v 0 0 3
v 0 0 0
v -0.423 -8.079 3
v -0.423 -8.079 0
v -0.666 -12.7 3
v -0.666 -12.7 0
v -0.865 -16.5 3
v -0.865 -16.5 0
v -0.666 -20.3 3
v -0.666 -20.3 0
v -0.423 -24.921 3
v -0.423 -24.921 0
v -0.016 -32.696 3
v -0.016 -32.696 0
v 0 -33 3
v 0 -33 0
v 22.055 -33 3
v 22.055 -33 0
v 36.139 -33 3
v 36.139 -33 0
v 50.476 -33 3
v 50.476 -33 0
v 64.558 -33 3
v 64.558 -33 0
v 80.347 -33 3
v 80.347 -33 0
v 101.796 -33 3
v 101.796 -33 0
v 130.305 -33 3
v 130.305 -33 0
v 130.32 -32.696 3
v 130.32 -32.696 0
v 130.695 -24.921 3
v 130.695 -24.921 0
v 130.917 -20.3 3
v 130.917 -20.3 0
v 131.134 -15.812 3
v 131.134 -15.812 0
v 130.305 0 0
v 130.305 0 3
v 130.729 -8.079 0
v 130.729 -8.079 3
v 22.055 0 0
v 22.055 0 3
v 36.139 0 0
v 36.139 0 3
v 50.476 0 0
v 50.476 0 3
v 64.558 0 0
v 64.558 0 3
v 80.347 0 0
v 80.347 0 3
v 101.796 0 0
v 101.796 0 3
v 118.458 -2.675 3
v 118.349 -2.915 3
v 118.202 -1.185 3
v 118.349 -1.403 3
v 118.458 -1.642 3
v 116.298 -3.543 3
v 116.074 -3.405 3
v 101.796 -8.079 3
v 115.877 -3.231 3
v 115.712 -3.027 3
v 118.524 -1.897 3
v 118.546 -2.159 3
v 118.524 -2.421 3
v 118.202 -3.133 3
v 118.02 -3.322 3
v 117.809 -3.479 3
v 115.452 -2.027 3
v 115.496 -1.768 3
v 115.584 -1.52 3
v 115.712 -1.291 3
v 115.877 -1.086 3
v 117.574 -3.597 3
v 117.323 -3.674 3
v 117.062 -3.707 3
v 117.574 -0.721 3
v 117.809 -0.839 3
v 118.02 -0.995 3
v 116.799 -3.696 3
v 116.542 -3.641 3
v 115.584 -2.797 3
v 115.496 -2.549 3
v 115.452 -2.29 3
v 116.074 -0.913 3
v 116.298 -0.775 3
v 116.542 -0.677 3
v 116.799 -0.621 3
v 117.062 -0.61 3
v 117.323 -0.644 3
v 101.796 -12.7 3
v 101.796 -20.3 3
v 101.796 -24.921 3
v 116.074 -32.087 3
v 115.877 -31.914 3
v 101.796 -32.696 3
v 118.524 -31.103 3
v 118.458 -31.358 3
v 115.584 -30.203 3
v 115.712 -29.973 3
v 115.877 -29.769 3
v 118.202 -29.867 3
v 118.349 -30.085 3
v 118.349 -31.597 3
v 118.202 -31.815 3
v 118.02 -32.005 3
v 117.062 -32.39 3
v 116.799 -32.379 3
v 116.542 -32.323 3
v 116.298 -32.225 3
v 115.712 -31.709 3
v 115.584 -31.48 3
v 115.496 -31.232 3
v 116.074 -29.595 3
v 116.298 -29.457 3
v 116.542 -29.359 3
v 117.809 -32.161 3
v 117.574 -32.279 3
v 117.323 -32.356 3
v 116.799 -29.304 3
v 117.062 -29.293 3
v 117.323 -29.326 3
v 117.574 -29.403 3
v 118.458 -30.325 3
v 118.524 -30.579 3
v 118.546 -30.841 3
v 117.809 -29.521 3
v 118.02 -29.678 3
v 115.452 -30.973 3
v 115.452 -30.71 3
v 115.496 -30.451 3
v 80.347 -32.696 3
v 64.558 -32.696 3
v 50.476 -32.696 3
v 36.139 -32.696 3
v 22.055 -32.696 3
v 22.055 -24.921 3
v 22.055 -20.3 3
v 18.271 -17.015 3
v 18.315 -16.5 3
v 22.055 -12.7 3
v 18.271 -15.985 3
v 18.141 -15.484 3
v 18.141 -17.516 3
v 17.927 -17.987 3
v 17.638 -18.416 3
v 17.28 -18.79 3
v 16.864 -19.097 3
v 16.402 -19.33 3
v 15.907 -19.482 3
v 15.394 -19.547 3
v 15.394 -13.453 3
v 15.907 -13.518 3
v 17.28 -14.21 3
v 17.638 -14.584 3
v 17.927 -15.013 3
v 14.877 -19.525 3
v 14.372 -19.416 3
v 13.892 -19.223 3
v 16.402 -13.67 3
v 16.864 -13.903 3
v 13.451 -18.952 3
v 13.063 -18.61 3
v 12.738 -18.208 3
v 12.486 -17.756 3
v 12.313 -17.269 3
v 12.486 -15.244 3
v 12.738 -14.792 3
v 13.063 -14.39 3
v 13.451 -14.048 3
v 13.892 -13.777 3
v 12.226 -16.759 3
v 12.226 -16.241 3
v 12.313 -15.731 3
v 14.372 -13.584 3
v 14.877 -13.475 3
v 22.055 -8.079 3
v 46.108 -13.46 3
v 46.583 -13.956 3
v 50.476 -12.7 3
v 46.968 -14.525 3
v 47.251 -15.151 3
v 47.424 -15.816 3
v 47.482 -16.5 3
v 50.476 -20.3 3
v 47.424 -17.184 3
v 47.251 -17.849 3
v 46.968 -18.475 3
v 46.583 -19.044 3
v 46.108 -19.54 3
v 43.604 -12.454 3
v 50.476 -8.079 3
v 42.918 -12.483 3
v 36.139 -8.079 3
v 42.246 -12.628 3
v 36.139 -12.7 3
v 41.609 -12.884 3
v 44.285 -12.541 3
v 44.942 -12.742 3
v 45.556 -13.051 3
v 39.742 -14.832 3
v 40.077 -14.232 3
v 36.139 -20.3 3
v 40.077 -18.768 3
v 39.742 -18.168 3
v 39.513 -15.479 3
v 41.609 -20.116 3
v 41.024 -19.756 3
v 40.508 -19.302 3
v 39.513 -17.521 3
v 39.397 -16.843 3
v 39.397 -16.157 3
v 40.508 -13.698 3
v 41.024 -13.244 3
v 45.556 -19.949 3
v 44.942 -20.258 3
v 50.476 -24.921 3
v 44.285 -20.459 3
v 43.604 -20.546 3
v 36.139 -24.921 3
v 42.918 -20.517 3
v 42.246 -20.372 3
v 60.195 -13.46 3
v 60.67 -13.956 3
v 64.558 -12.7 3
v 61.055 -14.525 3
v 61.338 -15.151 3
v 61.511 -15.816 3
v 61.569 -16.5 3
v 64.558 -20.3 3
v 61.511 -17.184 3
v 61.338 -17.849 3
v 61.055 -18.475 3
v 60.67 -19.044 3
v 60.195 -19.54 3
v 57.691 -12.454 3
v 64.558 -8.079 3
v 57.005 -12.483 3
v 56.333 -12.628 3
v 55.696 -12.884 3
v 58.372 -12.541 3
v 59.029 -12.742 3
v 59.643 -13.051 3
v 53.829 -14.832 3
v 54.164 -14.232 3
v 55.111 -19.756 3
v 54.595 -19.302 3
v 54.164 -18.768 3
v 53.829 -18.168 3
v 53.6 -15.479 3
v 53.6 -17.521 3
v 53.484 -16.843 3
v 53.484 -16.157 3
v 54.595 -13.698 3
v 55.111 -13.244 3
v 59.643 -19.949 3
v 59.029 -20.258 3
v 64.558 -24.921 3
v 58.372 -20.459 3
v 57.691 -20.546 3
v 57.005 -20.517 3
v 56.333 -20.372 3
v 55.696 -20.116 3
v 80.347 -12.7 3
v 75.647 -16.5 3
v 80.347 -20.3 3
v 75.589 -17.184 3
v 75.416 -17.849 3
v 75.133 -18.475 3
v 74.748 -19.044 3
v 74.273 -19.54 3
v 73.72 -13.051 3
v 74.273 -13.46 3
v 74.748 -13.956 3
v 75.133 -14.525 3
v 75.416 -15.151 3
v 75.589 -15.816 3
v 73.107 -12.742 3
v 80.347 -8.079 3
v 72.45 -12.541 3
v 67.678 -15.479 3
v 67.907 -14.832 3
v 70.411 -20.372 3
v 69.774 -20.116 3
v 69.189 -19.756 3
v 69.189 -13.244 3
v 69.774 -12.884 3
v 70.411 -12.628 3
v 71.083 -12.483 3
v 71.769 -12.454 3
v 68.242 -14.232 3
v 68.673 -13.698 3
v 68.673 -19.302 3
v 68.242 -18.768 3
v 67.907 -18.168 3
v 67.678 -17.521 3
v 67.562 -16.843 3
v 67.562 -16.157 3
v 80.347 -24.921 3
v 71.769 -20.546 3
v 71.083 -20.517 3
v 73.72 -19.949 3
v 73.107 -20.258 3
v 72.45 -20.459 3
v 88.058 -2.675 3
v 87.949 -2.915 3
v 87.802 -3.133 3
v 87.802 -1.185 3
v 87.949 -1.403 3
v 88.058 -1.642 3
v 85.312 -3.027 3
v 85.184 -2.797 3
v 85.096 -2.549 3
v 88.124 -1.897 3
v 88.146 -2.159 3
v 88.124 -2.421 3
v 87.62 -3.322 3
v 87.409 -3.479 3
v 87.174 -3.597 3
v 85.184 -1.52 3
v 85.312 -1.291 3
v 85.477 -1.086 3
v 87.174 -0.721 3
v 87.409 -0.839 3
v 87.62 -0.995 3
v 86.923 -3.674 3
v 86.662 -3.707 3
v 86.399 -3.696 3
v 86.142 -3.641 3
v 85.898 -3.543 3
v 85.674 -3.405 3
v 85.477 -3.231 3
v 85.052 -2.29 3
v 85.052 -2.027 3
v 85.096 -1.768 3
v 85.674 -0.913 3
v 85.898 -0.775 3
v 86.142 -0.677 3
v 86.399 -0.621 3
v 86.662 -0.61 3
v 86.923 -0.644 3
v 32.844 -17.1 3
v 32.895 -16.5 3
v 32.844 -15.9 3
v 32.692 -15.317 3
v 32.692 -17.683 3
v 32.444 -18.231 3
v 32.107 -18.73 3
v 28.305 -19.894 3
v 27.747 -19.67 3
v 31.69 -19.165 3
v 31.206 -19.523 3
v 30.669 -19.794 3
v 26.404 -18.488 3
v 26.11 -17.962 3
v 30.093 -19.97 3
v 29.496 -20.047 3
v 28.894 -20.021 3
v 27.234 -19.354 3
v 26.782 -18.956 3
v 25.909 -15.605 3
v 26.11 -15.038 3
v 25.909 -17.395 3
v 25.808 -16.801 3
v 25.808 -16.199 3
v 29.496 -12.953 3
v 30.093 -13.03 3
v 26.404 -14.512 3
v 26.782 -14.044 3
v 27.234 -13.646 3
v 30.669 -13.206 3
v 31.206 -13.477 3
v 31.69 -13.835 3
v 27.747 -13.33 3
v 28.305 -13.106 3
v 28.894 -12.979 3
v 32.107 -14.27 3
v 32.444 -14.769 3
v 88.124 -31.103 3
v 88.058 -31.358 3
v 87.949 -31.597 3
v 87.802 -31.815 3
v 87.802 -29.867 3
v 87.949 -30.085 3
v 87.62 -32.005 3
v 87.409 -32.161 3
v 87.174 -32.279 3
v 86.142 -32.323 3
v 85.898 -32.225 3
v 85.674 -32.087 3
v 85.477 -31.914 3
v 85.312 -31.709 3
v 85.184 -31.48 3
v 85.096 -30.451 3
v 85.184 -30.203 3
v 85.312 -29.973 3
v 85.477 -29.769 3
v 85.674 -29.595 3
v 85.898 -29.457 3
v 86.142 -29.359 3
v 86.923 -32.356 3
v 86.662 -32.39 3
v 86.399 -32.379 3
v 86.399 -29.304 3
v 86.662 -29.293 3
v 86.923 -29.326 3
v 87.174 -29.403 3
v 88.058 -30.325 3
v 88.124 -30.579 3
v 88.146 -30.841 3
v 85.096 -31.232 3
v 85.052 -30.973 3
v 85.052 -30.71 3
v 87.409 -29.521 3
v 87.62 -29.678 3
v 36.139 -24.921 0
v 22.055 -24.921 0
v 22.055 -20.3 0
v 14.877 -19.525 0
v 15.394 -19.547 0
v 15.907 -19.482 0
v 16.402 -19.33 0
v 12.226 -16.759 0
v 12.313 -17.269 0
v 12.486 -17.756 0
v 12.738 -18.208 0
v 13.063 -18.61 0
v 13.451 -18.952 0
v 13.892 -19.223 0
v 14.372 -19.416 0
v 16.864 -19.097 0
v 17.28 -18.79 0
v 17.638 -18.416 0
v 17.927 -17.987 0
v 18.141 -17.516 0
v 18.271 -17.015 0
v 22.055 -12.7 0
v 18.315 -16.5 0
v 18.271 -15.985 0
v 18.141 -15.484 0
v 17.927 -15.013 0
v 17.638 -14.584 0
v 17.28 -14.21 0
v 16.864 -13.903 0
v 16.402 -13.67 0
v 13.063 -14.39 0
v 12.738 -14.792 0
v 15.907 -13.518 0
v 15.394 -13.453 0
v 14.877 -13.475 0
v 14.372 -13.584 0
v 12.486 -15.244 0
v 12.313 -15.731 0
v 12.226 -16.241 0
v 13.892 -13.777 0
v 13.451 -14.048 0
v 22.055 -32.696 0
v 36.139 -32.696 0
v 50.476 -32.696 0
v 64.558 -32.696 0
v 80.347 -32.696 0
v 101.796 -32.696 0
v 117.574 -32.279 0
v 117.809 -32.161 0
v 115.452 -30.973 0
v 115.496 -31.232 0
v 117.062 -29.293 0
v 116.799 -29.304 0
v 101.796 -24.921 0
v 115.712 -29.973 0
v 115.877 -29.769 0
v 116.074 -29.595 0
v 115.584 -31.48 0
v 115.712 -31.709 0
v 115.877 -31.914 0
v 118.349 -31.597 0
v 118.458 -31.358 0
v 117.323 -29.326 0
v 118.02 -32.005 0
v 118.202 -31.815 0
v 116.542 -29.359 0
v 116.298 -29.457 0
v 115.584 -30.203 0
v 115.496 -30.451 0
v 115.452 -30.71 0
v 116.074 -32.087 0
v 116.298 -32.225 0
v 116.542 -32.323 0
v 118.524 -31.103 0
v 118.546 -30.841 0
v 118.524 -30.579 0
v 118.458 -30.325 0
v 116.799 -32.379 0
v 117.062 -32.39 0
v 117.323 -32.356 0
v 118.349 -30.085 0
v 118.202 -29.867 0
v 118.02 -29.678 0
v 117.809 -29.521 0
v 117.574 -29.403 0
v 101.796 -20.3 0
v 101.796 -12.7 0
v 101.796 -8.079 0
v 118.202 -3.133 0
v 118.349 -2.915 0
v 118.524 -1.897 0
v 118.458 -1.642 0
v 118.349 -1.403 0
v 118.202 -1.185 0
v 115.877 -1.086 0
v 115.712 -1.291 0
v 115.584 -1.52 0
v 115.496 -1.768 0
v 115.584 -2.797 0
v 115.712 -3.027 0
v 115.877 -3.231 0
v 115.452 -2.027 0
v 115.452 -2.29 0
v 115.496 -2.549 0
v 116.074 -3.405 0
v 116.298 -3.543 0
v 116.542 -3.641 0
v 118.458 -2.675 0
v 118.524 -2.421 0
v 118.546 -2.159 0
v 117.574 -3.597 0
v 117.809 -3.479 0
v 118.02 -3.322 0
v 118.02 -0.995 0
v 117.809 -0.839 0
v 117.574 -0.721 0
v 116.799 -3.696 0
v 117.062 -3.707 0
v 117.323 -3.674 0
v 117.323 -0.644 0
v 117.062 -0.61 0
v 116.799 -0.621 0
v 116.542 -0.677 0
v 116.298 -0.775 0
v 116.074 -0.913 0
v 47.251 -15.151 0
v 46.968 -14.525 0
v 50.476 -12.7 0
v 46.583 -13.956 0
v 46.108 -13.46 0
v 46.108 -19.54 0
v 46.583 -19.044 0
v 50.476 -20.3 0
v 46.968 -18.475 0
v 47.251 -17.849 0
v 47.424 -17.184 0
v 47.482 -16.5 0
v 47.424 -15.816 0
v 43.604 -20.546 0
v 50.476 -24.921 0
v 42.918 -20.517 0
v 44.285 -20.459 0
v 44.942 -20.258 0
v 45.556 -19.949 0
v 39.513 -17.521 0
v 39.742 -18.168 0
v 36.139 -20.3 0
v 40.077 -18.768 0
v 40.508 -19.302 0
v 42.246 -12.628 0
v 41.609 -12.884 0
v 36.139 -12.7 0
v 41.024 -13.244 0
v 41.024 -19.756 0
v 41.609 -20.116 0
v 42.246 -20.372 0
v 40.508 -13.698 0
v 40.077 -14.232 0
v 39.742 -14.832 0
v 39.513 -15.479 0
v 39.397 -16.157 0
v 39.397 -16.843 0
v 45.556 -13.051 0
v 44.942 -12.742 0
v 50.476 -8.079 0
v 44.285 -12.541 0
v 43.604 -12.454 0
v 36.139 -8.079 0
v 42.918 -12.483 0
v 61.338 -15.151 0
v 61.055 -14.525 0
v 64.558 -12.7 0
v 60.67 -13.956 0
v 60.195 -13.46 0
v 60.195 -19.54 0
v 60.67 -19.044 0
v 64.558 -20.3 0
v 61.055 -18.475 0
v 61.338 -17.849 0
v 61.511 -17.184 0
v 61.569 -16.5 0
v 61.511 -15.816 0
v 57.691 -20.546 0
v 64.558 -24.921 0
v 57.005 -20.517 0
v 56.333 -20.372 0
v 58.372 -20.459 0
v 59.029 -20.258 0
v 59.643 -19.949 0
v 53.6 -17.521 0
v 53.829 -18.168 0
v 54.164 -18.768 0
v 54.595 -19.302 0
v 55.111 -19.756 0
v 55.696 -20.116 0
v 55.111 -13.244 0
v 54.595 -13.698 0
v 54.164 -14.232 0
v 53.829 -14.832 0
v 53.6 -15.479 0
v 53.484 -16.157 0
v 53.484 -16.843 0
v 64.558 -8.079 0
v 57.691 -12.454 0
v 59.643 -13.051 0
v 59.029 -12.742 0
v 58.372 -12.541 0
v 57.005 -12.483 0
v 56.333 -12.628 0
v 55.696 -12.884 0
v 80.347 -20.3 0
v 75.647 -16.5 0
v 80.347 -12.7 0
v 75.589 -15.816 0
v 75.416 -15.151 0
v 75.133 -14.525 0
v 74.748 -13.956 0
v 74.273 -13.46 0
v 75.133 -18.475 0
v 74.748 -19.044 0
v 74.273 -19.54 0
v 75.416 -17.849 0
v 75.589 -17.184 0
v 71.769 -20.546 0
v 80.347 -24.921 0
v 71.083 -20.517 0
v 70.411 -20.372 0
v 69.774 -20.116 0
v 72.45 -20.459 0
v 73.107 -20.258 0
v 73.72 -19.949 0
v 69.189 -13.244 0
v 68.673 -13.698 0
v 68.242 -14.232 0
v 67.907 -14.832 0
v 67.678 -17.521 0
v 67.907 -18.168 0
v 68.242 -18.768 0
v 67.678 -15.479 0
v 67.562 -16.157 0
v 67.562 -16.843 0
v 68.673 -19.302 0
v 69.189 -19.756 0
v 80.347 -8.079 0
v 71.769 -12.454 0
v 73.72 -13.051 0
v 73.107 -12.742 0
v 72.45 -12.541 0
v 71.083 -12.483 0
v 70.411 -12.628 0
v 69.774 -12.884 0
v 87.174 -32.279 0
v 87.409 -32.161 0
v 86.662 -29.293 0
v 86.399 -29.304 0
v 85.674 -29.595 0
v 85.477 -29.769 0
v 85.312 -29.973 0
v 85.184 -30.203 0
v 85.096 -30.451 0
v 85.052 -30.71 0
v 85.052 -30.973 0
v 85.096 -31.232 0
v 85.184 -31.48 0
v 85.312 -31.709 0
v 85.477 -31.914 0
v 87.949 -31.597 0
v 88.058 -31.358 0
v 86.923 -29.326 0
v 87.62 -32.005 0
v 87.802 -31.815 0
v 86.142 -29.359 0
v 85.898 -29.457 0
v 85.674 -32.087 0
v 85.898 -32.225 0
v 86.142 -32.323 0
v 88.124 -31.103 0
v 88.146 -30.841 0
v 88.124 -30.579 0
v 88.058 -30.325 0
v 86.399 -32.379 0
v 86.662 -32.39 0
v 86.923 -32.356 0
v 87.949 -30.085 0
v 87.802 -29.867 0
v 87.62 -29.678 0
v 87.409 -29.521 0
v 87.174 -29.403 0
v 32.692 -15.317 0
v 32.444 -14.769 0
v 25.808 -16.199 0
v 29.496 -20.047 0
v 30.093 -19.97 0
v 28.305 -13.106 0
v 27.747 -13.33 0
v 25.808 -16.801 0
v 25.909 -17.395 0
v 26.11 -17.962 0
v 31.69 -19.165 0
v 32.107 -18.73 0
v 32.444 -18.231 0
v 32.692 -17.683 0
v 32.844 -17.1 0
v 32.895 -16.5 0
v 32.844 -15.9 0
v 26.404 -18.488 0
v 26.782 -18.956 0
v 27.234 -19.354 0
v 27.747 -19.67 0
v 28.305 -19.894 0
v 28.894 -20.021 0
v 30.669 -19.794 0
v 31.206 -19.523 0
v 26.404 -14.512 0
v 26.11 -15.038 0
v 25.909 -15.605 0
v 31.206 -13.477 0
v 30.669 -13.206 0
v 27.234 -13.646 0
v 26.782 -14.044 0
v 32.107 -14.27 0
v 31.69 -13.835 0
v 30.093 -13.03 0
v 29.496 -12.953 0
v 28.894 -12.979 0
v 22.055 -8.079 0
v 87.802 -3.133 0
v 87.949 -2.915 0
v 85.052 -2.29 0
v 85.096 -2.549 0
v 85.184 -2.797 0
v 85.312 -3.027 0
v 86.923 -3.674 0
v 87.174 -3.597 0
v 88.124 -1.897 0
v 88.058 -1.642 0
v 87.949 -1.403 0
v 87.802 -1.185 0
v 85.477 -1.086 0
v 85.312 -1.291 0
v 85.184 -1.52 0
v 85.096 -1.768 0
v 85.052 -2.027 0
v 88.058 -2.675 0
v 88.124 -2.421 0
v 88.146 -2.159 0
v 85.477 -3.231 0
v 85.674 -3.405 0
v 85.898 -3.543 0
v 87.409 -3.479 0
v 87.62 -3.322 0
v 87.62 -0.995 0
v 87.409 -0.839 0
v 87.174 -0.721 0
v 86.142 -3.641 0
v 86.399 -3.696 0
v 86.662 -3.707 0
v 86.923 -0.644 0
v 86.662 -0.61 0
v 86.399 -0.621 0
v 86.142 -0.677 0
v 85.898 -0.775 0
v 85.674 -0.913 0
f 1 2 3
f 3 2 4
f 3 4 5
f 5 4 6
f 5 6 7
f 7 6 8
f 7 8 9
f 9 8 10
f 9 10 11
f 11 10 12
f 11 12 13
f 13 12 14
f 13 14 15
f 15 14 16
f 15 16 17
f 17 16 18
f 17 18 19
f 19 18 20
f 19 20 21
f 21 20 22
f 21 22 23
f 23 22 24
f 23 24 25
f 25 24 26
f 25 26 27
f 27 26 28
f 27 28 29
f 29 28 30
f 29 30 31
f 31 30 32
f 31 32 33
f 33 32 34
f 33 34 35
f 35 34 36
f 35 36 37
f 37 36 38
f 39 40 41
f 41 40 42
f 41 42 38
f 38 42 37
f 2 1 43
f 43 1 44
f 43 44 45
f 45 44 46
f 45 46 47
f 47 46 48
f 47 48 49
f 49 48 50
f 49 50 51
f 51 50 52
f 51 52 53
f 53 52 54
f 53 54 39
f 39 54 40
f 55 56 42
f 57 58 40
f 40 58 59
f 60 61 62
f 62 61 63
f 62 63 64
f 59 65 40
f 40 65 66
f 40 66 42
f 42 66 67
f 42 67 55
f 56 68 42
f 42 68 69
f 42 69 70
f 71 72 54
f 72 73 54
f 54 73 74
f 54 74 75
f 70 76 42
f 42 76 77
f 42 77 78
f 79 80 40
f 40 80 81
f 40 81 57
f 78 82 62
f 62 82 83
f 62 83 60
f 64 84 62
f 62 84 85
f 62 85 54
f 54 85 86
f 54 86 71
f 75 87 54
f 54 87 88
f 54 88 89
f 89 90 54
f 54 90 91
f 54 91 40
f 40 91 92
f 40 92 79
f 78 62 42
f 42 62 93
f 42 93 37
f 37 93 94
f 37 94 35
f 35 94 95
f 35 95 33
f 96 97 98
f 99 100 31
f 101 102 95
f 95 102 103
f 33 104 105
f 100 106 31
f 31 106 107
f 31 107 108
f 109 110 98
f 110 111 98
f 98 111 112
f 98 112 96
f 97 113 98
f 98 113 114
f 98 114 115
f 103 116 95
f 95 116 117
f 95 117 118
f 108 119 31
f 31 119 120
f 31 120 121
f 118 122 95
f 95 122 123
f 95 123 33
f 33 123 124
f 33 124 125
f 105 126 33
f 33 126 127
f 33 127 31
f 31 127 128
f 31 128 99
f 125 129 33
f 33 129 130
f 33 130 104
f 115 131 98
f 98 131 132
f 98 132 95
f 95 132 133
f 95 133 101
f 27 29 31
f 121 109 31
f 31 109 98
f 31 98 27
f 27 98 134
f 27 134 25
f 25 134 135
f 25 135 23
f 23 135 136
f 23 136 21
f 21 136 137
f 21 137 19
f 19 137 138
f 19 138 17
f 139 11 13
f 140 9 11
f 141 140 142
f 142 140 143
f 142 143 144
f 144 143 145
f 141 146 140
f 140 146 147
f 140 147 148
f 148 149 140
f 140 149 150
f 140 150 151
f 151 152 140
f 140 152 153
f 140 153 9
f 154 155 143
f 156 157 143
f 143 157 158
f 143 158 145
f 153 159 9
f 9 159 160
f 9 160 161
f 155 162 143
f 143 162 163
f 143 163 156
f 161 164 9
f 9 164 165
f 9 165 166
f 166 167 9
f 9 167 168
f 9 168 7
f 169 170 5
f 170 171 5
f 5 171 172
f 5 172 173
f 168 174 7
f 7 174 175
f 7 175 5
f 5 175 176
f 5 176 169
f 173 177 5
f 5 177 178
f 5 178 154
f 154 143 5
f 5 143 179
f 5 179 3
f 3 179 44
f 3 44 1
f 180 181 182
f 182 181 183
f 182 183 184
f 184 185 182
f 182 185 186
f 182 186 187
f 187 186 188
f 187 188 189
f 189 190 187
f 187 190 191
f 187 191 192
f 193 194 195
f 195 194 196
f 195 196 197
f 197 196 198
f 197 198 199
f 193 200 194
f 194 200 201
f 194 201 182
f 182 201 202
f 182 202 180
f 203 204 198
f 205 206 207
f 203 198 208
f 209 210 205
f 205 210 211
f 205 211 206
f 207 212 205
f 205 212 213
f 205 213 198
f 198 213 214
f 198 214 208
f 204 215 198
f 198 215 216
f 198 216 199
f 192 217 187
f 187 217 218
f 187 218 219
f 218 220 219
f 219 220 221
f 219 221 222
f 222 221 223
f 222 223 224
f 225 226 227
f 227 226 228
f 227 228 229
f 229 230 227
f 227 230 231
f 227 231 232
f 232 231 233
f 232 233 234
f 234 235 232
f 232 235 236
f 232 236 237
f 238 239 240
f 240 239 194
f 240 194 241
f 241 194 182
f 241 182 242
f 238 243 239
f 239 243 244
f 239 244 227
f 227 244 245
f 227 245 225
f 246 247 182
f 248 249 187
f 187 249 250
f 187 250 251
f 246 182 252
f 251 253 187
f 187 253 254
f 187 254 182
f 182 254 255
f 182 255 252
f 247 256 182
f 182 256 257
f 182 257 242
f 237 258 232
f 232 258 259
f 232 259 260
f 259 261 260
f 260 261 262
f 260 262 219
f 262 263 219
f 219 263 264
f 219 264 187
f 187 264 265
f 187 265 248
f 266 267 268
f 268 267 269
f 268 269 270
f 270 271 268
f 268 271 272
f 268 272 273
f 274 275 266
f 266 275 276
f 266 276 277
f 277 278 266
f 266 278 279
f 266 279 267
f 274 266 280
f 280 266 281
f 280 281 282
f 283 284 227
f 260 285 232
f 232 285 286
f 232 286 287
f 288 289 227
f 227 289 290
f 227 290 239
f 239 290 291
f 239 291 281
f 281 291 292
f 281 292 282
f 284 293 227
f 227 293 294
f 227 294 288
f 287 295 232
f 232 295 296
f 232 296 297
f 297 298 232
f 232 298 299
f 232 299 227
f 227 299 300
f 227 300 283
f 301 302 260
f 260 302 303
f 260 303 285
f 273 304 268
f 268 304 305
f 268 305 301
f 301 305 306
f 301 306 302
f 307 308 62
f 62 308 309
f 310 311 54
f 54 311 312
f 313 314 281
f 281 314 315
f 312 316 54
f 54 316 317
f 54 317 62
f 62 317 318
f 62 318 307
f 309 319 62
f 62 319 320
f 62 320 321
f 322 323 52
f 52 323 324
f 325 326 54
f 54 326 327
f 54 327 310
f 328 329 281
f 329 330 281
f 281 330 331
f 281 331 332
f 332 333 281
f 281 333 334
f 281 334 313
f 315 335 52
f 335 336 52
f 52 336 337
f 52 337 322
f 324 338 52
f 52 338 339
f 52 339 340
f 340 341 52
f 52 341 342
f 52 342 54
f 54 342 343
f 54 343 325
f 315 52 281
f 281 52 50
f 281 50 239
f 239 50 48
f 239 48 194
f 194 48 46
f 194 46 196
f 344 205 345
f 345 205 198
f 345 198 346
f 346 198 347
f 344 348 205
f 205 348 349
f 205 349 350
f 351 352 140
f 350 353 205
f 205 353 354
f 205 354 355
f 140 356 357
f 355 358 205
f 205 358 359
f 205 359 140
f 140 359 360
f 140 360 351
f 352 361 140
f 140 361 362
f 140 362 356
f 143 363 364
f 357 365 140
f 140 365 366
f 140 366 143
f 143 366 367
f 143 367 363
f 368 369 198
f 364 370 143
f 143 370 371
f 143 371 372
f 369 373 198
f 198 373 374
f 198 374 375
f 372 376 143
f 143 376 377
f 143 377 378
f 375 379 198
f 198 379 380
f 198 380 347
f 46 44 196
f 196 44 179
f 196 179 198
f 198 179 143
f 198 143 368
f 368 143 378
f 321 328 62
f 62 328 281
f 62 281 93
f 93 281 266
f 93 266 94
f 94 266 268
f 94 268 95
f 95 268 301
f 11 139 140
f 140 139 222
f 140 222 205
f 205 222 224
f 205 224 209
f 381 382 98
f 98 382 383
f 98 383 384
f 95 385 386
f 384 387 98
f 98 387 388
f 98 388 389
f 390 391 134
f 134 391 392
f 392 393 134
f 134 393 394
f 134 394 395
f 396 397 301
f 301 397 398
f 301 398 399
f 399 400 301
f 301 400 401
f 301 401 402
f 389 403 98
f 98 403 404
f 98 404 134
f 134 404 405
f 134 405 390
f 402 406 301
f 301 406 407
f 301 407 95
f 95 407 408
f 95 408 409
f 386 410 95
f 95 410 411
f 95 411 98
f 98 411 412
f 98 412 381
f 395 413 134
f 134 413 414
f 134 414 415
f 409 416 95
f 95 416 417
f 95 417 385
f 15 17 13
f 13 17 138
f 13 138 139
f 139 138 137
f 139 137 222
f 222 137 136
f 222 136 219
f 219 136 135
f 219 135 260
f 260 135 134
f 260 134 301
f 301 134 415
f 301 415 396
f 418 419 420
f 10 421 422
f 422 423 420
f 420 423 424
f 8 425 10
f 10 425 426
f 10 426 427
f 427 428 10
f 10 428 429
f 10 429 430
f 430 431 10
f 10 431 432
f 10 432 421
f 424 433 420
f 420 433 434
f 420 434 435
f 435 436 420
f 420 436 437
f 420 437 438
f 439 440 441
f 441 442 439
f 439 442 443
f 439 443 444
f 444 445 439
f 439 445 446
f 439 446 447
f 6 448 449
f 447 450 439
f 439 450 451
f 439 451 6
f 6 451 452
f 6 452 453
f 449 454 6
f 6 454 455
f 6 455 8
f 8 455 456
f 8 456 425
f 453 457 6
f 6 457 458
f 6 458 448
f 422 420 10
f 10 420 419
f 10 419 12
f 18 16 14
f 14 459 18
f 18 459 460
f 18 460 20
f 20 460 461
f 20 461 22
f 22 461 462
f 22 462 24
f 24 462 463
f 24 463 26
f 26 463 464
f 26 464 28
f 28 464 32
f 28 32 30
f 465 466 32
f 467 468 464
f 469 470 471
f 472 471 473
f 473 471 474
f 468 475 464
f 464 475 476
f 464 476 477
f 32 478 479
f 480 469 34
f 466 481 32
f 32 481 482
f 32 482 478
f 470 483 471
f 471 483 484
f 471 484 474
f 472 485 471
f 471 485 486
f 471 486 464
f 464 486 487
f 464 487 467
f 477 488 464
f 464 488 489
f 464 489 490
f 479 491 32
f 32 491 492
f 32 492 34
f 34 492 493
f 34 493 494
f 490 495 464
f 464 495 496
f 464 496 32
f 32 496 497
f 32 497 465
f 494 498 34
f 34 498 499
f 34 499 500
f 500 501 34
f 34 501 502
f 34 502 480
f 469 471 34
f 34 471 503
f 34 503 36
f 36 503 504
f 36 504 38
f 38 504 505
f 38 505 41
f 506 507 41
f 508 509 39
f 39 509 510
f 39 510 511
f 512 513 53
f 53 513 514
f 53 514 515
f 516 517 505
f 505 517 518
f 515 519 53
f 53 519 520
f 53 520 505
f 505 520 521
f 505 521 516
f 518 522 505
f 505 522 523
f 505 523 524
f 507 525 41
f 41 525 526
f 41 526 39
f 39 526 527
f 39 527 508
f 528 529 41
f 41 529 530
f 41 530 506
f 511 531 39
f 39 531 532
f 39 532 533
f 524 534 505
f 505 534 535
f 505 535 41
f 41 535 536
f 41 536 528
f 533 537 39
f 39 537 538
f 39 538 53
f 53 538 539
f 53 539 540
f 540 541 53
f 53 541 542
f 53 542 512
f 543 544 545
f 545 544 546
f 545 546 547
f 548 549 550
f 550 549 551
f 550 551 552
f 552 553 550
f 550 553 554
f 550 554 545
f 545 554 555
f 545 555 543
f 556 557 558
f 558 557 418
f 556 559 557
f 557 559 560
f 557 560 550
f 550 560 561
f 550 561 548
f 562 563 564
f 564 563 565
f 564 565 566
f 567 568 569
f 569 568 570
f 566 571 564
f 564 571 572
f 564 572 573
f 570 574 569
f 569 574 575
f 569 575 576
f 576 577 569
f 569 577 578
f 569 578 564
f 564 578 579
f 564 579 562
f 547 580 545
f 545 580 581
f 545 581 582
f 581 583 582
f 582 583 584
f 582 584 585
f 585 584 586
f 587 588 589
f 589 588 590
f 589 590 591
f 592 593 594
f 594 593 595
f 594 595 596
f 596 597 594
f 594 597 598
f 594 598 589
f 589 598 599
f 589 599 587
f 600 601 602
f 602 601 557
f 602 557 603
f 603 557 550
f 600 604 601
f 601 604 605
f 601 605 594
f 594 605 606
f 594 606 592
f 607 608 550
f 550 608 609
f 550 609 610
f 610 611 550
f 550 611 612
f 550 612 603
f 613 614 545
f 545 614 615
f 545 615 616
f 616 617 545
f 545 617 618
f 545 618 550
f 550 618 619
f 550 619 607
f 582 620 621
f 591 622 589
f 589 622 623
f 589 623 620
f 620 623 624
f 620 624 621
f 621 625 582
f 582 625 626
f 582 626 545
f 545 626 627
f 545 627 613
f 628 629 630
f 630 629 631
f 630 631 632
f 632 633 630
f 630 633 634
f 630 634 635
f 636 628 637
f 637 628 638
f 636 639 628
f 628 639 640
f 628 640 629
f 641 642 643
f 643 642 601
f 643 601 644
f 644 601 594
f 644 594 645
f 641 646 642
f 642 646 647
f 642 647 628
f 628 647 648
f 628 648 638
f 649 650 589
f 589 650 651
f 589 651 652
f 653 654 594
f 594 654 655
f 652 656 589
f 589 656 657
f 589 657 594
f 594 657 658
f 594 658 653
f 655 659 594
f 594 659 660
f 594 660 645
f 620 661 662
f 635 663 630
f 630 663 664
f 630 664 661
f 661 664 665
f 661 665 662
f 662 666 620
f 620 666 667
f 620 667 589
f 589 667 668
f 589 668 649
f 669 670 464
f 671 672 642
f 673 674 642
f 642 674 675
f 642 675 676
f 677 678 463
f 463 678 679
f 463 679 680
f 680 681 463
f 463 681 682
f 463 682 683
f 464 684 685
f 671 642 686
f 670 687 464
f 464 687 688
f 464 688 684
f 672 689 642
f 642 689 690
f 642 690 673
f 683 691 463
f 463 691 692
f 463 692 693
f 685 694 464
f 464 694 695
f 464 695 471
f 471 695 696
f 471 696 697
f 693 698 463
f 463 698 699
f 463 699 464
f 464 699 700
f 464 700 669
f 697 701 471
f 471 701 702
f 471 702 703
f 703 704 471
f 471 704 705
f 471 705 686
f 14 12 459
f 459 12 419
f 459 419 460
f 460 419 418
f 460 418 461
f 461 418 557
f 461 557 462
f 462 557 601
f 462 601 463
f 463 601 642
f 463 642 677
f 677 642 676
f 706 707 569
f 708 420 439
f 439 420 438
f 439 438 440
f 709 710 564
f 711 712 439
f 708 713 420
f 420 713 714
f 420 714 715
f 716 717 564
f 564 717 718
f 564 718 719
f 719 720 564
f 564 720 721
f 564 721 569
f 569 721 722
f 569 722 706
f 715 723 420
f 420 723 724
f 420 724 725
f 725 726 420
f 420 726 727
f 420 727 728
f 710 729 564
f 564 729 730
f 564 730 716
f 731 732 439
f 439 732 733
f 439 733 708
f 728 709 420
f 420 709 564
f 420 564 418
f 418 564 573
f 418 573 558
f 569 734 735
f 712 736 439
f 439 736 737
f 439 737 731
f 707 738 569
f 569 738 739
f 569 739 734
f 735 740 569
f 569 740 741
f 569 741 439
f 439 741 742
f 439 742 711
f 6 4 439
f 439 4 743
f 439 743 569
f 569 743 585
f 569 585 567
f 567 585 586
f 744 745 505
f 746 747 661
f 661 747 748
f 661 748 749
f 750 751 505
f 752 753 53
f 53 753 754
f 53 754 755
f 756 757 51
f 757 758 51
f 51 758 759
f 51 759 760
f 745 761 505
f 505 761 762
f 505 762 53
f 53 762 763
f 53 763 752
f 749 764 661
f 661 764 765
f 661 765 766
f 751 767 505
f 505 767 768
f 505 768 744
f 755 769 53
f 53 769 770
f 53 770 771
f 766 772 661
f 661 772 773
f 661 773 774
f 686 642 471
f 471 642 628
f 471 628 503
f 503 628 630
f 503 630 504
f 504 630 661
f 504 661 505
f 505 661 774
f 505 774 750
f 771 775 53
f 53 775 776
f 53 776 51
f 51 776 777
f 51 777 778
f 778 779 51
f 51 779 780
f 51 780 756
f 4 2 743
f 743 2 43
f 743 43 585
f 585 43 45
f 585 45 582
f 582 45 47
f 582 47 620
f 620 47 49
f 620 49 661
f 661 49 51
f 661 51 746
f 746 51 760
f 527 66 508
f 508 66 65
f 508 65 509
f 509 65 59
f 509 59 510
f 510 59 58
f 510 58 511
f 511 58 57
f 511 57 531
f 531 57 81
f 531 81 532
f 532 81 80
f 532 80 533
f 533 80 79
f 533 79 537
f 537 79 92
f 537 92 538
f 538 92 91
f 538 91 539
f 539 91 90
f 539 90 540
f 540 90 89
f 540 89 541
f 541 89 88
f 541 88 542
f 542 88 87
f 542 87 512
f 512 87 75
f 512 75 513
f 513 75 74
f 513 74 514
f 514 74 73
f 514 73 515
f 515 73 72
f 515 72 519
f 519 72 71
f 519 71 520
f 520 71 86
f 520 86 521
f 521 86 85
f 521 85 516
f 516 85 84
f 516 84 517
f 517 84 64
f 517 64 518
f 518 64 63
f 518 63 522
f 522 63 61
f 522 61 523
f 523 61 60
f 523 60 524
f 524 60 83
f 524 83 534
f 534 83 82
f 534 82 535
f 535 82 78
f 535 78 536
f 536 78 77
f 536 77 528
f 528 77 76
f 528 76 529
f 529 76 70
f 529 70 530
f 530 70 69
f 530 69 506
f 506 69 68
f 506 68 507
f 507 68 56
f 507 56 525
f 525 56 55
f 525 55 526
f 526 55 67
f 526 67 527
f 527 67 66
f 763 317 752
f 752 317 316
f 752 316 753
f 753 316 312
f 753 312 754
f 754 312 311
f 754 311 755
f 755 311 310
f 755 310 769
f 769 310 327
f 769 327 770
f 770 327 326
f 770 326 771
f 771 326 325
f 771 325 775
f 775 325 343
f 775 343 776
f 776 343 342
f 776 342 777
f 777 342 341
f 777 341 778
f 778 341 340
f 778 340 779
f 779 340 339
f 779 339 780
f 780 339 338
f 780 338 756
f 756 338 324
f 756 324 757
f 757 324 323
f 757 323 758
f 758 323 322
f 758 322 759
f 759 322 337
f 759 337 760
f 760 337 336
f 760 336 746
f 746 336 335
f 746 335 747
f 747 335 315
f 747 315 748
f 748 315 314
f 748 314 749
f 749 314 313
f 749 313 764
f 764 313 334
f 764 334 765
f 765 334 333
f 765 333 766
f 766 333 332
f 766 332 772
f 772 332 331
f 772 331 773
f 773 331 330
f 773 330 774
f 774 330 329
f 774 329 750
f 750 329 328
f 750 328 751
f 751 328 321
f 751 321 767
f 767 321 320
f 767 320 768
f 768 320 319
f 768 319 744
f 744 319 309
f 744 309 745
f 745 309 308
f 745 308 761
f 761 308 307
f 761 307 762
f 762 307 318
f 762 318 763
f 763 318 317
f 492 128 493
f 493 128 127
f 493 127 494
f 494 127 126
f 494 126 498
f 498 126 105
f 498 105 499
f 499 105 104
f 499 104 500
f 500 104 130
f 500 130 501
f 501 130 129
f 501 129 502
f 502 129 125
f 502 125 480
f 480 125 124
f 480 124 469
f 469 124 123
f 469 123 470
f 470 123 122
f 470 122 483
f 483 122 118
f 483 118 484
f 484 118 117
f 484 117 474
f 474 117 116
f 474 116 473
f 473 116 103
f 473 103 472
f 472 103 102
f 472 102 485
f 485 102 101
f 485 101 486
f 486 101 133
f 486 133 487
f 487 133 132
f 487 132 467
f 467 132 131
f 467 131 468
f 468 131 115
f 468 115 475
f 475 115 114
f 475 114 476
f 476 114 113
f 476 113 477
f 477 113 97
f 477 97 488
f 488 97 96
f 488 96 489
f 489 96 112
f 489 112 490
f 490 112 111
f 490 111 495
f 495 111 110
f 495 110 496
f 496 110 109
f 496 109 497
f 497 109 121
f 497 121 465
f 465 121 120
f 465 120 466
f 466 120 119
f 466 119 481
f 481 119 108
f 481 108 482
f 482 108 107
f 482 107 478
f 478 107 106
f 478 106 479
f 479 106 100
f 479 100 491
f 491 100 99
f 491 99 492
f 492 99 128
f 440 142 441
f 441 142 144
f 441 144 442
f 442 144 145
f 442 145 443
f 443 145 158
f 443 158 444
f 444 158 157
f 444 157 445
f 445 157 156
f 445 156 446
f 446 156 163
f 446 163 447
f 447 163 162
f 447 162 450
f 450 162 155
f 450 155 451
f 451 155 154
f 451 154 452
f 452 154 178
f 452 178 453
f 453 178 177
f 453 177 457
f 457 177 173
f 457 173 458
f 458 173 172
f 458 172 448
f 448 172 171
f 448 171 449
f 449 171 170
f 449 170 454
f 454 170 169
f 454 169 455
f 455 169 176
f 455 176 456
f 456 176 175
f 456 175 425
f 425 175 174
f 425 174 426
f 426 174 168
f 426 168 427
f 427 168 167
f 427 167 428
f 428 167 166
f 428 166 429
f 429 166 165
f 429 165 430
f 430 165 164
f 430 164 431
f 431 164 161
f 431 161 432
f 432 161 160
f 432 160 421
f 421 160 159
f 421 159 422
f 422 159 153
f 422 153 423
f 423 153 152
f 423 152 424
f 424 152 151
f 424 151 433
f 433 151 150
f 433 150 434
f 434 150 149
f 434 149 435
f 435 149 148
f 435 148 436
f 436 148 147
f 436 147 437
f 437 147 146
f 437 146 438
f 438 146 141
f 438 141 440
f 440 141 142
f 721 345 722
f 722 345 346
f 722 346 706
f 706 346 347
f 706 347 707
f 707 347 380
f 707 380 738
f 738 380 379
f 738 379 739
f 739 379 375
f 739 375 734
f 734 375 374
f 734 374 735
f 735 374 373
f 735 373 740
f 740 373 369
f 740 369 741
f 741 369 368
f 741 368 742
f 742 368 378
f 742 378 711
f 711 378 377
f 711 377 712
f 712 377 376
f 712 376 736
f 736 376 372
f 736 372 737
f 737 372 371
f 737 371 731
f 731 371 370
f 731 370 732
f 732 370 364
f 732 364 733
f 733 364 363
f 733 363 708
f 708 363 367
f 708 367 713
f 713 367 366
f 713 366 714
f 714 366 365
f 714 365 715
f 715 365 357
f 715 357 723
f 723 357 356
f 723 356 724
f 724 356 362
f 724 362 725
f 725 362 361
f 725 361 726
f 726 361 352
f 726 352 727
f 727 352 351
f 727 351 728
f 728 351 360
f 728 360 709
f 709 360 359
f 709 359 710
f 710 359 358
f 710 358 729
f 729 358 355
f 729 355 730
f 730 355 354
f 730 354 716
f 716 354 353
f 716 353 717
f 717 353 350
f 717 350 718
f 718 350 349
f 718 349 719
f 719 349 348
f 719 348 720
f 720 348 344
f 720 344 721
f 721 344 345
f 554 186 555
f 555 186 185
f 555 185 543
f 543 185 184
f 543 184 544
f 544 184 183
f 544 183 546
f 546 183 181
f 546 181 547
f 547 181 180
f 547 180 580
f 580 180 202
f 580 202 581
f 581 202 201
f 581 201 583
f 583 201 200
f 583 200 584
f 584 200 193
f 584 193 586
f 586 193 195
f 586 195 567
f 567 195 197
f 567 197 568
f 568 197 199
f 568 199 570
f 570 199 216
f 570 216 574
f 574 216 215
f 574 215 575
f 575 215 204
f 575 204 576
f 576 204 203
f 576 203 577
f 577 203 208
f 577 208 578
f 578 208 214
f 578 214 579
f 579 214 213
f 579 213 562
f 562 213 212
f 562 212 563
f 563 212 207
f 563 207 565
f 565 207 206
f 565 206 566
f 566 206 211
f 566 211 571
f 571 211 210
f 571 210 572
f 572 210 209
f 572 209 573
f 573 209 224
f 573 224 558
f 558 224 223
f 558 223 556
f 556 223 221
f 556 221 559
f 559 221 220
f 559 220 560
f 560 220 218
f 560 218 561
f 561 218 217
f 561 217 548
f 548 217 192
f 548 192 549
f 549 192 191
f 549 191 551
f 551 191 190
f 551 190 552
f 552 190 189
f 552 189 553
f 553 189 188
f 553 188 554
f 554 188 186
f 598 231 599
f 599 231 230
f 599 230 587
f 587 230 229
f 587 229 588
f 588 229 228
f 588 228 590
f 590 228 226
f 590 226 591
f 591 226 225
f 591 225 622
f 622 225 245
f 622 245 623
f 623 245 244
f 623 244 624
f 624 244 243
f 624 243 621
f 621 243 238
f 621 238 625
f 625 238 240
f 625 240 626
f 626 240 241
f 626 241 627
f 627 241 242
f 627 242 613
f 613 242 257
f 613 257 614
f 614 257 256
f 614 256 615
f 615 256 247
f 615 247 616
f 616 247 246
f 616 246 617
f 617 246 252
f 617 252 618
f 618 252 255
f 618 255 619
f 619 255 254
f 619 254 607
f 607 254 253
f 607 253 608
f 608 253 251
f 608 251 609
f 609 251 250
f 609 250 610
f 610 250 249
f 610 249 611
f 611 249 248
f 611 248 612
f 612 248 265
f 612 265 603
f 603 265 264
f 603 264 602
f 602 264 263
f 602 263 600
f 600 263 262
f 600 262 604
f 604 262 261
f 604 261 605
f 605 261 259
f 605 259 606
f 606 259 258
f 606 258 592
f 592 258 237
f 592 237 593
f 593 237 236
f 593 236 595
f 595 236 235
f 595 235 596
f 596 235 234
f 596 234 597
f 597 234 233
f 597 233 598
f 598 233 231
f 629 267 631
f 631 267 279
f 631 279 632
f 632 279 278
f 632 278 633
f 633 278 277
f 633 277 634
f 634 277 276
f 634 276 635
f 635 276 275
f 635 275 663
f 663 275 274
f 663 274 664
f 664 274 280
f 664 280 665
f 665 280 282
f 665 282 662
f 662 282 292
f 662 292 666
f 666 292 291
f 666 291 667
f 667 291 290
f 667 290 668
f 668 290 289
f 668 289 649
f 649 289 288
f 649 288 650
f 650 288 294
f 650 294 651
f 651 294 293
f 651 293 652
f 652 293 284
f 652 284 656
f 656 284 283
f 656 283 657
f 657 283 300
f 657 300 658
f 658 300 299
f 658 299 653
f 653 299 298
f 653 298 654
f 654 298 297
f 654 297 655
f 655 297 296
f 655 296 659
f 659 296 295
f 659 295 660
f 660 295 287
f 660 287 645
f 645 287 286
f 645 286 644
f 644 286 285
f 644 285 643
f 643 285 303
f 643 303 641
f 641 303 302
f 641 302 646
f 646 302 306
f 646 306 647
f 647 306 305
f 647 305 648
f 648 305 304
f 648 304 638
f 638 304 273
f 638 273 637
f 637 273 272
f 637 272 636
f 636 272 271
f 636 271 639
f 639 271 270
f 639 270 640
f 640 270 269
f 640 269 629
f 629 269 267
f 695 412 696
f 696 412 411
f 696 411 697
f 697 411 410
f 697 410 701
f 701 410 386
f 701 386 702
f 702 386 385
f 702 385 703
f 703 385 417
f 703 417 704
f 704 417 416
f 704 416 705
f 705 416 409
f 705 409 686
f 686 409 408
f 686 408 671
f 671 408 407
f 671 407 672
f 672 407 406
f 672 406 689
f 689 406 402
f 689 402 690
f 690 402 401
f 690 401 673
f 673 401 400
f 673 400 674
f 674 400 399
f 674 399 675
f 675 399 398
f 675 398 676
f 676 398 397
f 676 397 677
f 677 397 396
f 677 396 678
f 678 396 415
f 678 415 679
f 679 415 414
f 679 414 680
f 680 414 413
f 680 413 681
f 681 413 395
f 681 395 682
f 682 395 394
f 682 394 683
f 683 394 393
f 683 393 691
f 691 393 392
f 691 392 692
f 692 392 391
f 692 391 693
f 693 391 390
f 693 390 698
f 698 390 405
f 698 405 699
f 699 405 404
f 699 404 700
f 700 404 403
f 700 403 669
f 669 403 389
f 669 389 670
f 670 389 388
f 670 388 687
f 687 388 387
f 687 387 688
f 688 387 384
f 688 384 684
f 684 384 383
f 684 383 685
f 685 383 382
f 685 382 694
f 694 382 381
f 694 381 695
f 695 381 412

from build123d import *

# Parameters (mm, degrees)
BOSS_EXTRUDE1_DEPTH = 3
ESBO_O1_R           = 3.05
ESBO_O1_R_2         = 3.55
ESBO_O1_R_3         = 4.05
ESBO_O1_R_4         = 1.55
CUT_EXTRUDE2_DEPTH  = 10


# Read off the part's stored shape, not the designer's step: Boss-Extrude1
with BuildPart() as part:
    # Boss-Extrude1 outline → Boss-Extrude1 (new body)
    with BuildSketch(Plane.XY):
        Polygon((0, 0), (-0.86472917, -16.500015494), (0, -33.000030988), (130.305174389, -32.999992472), (131.13382584, -15.81161159), (130.305174389, 0), align=None)
    extrude(amount=BOSS_EXTRUDE1_DEPTH)

    # Esboço1 → Cut-Extrude2 (cut)
    with BuildSketch(Plane.XY.offset(3)):
        with Locations((15.264794979, -16.500000001)):
            Circle(ESBO_O1_R)
        with Locations((29.34491573, -16.500000001)):
            Circle(ESBO_O1_R_2)
        with Locations((43.432199078, -16.500000001)):
            Circle(ESBO_O1_R_3)
        with Locations((57.519151999, -16.500000001)):
            Circle(ESBO_O1_R_3)
        with Locations((71.597045458, -16.500000001)):
            Circle(ESBO_O1_R_3)
        with Locations((86.59615234, -2.1587967)):
            Circle(ESBO_O1_R_4)
        with Locations((116.99615234, -2.1587967)):
            Circle(ESBO_O1_R_4)
        with Locations((86.59615234, -30.8412033)):
            Circle(ESBO_O1_R_4)
        with Locations((116.99615234, -30.8412033)):
            Circle(ESBO_O1_R_4)
    extrude(amount=-CUT_EXTRUDE2_DEPTH, mode=Mode.SUBTRACT)


solid = part.part
